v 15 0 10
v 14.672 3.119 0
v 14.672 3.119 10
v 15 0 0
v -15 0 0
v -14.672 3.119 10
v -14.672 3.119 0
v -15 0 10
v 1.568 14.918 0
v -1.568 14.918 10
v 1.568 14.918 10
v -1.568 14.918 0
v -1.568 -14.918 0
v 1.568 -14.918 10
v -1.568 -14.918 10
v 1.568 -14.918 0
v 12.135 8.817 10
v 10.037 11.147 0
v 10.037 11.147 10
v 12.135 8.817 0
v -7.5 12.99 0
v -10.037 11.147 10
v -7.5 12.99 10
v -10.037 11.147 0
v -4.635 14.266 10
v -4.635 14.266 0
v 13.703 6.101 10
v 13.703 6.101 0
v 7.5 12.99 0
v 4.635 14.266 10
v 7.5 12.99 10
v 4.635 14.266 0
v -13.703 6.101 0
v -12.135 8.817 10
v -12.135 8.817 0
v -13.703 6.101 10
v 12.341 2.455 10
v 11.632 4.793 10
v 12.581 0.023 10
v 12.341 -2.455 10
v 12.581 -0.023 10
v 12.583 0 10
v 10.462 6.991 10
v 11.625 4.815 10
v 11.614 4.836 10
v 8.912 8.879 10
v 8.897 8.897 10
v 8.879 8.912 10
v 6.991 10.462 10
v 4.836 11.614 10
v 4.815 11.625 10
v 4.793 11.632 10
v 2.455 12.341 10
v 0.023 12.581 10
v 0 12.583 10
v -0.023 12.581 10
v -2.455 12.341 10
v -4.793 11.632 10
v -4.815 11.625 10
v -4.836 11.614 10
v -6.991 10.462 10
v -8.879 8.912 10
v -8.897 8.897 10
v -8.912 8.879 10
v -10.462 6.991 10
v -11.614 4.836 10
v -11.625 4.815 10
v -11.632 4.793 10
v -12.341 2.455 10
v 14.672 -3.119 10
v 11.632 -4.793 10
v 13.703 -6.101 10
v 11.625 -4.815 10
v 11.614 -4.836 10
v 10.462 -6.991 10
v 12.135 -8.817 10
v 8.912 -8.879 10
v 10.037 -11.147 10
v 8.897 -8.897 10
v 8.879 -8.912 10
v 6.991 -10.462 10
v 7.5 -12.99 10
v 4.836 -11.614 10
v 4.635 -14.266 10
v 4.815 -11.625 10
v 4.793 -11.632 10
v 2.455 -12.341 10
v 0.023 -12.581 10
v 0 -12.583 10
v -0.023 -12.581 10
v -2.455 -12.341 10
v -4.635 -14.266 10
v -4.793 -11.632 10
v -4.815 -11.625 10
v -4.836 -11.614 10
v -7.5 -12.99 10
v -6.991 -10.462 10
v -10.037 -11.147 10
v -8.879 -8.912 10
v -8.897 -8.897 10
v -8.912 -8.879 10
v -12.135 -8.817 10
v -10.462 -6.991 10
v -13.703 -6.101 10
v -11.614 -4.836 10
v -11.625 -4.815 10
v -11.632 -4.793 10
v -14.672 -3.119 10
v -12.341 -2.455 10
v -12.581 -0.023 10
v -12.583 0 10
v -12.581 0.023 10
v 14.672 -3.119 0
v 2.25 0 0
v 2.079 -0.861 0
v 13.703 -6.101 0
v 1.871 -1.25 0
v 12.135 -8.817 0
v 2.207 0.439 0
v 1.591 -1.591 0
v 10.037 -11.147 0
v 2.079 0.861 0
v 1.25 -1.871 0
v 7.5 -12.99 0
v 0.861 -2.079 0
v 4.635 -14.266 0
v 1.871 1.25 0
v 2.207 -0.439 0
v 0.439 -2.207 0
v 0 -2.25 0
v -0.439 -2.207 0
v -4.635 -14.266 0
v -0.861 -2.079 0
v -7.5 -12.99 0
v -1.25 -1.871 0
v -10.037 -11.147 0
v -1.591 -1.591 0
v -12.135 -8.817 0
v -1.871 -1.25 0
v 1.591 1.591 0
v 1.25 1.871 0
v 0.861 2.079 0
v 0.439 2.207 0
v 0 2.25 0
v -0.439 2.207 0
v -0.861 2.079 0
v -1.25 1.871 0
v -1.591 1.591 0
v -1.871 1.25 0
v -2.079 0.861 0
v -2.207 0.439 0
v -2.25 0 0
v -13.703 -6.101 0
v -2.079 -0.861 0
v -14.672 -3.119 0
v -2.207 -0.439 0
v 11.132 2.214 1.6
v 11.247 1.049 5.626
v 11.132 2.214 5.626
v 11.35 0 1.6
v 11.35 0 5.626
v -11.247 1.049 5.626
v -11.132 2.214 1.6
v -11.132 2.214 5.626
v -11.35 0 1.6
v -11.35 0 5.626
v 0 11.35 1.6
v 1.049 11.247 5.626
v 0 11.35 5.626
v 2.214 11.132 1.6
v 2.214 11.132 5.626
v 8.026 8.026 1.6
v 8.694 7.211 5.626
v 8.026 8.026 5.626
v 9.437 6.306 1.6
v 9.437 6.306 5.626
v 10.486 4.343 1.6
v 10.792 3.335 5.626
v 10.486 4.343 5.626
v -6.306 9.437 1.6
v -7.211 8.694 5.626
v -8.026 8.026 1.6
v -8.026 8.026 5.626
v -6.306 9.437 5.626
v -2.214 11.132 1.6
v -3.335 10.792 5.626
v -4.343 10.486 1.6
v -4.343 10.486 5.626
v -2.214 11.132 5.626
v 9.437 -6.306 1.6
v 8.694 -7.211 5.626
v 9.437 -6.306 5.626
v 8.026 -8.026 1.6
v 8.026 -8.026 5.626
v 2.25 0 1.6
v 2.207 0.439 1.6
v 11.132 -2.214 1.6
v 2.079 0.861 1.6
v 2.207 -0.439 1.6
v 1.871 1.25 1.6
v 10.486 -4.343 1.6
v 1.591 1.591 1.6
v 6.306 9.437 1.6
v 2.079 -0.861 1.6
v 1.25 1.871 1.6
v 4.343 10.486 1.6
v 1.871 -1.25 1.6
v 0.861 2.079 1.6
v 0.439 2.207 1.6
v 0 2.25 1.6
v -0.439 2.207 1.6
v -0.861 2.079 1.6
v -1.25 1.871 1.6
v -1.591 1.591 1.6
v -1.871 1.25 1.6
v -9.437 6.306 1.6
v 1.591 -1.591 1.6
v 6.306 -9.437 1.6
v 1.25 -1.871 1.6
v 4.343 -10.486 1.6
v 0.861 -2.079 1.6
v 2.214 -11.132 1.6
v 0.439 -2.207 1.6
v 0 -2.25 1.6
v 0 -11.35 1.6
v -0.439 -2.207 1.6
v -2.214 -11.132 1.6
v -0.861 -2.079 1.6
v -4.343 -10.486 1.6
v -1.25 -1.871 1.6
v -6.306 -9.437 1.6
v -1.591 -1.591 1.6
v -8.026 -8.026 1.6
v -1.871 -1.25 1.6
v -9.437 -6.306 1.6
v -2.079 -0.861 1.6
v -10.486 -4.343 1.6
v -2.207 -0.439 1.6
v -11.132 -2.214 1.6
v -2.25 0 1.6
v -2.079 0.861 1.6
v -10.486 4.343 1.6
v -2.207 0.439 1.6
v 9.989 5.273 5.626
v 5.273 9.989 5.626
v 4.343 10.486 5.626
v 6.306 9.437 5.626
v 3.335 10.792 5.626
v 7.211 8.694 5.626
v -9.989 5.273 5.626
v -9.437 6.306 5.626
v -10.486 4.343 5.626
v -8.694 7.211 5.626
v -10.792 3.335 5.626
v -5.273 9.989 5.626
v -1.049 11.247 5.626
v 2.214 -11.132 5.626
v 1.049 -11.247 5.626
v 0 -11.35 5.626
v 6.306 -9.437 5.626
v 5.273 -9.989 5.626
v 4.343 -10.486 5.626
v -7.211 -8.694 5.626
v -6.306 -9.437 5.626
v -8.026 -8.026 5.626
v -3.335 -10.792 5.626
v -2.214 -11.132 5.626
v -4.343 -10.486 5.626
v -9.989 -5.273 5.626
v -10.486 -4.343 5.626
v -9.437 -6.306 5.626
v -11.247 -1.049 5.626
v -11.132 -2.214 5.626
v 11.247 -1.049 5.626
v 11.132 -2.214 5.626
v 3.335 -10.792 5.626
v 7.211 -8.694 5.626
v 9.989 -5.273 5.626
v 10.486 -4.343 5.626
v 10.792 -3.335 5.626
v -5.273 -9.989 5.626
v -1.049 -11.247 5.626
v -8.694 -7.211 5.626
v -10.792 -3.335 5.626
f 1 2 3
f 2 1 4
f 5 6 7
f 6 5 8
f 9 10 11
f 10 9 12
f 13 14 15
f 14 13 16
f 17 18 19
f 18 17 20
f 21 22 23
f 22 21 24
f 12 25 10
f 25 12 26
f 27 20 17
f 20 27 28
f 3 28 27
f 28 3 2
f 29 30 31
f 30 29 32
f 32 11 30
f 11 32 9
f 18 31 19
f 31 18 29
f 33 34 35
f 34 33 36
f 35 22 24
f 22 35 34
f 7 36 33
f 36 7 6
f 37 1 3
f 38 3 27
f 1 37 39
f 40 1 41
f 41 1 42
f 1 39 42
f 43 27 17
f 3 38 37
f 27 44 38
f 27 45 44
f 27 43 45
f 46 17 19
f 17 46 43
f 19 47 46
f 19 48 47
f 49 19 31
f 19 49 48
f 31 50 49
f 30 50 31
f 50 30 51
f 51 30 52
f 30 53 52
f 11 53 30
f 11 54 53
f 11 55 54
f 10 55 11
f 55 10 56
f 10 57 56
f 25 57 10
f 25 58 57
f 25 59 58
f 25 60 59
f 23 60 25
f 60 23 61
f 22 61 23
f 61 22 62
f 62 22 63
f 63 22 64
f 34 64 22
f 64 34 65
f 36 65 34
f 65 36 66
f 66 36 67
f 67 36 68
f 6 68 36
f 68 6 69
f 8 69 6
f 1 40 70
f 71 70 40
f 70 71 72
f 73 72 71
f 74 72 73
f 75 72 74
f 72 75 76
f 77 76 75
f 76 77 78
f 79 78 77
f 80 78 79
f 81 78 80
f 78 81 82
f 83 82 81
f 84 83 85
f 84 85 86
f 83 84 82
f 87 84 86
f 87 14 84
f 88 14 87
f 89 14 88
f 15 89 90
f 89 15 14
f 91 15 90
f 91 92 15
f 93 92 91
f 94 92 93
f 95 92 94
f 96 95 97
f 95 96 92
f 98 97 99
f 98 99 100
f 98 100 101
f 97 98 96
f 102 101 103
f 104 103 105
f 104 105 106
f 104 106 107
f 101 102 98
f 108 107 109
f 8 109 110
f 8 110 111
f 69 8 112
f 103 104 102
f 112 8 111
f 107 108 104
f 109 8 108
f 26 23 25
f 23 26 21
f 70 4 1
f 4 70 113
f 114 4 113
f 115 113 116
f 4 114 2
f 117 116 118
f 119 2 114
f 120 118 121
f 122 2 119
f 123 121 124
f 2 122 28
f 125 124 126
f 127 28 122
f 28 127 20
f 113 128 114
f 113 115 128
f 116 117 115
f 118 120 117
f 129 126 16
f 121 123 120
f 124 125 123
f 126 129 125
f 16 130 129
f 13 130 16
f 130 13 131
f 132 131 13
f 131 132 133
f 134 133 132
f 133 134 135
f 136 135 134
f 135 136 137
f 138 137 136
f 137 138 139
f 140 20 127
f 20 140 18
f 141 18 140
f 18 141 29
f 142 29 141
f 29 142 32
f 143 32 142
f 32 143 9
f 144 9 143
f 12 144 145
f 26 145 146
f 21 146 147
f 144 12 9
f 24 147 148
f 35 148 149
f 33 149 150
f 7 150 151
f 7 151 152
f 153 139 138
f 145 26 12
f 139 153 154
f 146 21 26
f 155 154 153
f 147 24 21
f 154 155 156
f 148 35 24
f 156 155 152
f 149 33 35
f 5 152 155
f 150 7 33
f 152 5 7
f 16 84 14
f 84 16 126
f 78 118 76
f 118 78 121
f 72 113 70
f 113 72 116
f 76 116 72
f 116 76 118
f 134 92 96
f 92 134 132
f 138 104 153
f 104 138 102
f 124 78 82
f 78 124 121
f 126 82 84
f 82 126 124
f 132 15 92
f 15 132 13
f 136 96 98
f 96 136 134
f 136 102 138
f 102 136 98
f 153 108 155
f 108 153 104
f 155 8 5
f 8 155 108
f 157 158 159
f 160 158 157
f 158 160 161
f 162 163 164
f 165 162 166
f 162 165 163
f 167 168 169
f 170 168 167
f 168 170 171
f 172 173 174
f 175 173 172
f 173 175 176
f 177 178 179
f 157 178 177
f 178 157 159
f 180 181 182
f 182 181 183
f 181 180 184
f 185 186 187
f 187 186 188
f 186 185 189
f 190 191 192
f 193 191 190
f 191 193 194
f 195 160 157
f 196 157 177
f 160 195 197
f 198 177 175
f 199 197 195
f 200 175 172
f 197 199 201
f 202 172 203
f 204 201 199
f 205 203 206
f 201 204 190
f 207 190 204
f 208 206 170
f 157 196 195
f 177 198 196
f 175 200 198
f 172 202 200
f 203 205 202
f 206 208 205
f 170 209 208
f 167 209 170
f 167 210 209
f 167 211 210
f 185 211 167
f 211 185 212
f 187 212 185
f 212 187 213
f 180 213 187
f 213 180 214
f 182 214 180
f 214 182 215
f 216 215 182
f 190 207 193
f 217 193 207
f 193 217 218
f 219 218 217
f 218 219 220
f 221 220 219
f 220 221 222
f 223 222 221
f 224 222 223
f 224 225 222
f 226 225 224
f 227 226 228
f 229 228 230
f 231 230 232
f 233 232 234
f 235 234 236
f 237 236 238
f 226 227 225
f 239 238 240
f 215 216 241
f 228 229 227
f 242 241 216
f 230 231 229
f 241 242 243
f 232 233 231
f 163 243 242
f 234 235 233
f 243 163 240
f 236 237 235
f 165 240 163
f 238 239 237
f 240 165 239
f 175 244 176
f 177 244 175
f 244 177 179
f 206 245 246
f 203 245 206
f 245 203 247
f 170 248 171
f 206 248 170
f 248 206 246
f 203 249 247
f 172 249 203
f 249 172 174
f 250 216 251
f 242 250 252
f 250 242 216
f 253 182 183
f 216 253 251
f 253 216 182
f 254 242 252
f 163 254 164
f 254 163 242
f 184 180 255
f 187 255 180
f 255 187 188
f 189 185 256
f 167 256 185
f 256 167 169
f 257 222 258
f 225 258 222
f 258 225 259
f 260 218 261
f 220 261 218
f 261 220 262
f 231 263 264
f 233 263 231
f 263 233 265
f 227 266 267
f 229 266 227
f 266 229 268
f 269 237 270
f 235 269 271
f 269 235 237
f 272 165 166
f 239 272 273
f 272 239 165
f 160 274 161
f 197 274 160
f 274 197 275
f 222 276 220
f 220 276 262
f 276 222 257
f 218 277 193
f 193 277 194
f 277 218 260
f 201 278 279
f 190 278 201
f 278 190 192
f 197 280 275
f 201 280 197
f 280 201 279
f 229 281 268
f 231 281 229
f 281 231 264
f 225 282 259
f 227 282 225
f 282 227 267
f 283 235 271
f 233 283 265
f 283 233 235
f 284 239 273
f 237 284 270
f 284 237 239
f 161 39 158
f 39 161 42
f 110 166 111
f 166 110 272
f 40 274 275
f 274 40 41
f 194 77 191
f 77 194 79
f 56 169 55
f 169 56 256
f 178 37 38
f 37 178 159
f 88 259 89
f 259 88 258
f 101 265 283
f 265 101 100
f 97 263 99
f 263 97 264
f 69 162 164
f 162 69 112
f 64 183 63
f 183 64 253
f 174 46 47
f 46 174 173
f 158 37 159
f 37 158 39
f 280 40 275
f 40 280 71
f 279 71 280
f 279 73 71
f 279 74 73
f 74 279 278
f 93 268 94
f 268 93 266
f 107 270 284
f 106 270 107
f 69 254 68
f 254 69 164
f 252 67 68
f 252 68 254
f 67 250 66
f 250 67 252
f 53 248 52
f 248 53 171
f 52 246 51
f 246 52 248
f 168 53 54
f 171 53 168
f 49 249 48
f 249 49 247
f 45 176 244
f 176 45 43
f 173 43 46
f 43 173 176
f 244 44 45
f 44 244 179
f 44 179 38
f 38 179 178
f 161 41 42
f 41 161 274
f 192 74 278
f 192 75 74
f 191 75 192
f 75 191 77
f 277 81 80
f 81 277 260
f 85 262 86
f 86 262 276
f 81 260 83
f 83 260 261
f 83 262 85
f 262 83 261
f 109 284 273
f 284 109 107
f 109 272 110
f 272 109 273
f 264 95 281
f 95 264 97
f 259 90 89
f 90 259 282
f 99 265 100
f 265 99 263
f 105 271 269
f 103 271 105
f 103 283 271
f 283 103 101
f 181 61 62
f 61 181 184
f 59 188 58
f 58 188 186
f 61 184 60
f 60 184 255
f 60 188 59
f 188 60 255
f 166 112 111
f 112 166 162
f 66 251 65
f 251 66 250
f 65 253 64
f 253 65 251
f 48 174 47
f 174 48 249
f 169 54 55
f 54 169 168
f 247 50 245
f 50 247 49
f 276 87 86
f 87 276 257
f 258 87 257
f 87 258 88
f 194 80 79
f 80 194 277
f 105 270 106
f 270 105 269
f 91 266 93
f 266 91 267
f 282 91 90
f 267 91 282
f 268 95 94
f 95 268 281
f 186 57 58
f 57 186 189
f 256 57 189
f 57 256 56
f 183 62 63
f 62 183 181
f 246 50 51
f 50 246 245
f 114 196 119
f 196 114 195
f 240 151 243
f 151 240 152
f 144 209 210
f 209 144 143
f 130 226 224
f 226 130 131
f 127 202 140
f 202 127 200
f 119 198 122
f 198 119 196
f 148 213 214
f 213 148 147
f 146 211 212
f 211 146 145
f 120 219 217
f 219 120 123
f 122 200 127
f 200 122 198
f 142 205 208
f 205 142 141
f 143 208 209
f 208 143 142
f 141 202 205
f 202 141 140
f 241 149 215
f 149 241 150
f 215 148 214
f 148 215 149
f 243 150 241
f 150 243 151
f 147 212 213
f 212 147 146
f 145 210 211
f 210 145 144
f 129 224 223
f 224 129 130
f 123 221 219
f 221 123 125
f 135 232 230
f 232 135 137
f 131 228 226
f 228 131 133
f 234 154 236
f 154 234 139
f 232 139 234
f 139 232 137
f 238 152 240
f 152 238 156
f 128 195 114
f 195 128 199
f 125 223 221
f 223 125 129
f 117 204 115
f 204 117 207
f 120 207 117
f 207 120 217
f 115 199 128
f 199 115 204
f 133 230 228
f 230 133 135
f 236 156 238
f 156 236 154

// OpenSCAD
/*
    Proxymow Mower - Roof Socket
    Print in TPU

    Adjust pillar_dia to suit roof pillars
*/

pillar_dia = 22.7;//mm
socket_dia = 30;//mm
floor_thickness = 1.5;//mm
socket_thickness = 10;//mm
taper_factor = 0.9;
fix_hole_dia = 4.5;//mm
module socket() {
    difference() {
        cylinder(h=socket_thickness, d=socket_dia);
        translate([0, 0, floor_thickness + 0.1]) cylinder(h=socket_thickness - floor_thickness, d=pillar_dia, $fn=32);
        translate([0, 0, floor_thickness + 0.1]) cylinder(h=socket_thickness - floor_thickness, d1=pillar_dia * taper_factor, d2=pillar_dia/taper_factor, $fn=32);
        translate([0, 0, -0.1]) cylinder(h=floor_thickness + 2, d=fix_hole_dia, $fn=32);
    }
}
socket();
